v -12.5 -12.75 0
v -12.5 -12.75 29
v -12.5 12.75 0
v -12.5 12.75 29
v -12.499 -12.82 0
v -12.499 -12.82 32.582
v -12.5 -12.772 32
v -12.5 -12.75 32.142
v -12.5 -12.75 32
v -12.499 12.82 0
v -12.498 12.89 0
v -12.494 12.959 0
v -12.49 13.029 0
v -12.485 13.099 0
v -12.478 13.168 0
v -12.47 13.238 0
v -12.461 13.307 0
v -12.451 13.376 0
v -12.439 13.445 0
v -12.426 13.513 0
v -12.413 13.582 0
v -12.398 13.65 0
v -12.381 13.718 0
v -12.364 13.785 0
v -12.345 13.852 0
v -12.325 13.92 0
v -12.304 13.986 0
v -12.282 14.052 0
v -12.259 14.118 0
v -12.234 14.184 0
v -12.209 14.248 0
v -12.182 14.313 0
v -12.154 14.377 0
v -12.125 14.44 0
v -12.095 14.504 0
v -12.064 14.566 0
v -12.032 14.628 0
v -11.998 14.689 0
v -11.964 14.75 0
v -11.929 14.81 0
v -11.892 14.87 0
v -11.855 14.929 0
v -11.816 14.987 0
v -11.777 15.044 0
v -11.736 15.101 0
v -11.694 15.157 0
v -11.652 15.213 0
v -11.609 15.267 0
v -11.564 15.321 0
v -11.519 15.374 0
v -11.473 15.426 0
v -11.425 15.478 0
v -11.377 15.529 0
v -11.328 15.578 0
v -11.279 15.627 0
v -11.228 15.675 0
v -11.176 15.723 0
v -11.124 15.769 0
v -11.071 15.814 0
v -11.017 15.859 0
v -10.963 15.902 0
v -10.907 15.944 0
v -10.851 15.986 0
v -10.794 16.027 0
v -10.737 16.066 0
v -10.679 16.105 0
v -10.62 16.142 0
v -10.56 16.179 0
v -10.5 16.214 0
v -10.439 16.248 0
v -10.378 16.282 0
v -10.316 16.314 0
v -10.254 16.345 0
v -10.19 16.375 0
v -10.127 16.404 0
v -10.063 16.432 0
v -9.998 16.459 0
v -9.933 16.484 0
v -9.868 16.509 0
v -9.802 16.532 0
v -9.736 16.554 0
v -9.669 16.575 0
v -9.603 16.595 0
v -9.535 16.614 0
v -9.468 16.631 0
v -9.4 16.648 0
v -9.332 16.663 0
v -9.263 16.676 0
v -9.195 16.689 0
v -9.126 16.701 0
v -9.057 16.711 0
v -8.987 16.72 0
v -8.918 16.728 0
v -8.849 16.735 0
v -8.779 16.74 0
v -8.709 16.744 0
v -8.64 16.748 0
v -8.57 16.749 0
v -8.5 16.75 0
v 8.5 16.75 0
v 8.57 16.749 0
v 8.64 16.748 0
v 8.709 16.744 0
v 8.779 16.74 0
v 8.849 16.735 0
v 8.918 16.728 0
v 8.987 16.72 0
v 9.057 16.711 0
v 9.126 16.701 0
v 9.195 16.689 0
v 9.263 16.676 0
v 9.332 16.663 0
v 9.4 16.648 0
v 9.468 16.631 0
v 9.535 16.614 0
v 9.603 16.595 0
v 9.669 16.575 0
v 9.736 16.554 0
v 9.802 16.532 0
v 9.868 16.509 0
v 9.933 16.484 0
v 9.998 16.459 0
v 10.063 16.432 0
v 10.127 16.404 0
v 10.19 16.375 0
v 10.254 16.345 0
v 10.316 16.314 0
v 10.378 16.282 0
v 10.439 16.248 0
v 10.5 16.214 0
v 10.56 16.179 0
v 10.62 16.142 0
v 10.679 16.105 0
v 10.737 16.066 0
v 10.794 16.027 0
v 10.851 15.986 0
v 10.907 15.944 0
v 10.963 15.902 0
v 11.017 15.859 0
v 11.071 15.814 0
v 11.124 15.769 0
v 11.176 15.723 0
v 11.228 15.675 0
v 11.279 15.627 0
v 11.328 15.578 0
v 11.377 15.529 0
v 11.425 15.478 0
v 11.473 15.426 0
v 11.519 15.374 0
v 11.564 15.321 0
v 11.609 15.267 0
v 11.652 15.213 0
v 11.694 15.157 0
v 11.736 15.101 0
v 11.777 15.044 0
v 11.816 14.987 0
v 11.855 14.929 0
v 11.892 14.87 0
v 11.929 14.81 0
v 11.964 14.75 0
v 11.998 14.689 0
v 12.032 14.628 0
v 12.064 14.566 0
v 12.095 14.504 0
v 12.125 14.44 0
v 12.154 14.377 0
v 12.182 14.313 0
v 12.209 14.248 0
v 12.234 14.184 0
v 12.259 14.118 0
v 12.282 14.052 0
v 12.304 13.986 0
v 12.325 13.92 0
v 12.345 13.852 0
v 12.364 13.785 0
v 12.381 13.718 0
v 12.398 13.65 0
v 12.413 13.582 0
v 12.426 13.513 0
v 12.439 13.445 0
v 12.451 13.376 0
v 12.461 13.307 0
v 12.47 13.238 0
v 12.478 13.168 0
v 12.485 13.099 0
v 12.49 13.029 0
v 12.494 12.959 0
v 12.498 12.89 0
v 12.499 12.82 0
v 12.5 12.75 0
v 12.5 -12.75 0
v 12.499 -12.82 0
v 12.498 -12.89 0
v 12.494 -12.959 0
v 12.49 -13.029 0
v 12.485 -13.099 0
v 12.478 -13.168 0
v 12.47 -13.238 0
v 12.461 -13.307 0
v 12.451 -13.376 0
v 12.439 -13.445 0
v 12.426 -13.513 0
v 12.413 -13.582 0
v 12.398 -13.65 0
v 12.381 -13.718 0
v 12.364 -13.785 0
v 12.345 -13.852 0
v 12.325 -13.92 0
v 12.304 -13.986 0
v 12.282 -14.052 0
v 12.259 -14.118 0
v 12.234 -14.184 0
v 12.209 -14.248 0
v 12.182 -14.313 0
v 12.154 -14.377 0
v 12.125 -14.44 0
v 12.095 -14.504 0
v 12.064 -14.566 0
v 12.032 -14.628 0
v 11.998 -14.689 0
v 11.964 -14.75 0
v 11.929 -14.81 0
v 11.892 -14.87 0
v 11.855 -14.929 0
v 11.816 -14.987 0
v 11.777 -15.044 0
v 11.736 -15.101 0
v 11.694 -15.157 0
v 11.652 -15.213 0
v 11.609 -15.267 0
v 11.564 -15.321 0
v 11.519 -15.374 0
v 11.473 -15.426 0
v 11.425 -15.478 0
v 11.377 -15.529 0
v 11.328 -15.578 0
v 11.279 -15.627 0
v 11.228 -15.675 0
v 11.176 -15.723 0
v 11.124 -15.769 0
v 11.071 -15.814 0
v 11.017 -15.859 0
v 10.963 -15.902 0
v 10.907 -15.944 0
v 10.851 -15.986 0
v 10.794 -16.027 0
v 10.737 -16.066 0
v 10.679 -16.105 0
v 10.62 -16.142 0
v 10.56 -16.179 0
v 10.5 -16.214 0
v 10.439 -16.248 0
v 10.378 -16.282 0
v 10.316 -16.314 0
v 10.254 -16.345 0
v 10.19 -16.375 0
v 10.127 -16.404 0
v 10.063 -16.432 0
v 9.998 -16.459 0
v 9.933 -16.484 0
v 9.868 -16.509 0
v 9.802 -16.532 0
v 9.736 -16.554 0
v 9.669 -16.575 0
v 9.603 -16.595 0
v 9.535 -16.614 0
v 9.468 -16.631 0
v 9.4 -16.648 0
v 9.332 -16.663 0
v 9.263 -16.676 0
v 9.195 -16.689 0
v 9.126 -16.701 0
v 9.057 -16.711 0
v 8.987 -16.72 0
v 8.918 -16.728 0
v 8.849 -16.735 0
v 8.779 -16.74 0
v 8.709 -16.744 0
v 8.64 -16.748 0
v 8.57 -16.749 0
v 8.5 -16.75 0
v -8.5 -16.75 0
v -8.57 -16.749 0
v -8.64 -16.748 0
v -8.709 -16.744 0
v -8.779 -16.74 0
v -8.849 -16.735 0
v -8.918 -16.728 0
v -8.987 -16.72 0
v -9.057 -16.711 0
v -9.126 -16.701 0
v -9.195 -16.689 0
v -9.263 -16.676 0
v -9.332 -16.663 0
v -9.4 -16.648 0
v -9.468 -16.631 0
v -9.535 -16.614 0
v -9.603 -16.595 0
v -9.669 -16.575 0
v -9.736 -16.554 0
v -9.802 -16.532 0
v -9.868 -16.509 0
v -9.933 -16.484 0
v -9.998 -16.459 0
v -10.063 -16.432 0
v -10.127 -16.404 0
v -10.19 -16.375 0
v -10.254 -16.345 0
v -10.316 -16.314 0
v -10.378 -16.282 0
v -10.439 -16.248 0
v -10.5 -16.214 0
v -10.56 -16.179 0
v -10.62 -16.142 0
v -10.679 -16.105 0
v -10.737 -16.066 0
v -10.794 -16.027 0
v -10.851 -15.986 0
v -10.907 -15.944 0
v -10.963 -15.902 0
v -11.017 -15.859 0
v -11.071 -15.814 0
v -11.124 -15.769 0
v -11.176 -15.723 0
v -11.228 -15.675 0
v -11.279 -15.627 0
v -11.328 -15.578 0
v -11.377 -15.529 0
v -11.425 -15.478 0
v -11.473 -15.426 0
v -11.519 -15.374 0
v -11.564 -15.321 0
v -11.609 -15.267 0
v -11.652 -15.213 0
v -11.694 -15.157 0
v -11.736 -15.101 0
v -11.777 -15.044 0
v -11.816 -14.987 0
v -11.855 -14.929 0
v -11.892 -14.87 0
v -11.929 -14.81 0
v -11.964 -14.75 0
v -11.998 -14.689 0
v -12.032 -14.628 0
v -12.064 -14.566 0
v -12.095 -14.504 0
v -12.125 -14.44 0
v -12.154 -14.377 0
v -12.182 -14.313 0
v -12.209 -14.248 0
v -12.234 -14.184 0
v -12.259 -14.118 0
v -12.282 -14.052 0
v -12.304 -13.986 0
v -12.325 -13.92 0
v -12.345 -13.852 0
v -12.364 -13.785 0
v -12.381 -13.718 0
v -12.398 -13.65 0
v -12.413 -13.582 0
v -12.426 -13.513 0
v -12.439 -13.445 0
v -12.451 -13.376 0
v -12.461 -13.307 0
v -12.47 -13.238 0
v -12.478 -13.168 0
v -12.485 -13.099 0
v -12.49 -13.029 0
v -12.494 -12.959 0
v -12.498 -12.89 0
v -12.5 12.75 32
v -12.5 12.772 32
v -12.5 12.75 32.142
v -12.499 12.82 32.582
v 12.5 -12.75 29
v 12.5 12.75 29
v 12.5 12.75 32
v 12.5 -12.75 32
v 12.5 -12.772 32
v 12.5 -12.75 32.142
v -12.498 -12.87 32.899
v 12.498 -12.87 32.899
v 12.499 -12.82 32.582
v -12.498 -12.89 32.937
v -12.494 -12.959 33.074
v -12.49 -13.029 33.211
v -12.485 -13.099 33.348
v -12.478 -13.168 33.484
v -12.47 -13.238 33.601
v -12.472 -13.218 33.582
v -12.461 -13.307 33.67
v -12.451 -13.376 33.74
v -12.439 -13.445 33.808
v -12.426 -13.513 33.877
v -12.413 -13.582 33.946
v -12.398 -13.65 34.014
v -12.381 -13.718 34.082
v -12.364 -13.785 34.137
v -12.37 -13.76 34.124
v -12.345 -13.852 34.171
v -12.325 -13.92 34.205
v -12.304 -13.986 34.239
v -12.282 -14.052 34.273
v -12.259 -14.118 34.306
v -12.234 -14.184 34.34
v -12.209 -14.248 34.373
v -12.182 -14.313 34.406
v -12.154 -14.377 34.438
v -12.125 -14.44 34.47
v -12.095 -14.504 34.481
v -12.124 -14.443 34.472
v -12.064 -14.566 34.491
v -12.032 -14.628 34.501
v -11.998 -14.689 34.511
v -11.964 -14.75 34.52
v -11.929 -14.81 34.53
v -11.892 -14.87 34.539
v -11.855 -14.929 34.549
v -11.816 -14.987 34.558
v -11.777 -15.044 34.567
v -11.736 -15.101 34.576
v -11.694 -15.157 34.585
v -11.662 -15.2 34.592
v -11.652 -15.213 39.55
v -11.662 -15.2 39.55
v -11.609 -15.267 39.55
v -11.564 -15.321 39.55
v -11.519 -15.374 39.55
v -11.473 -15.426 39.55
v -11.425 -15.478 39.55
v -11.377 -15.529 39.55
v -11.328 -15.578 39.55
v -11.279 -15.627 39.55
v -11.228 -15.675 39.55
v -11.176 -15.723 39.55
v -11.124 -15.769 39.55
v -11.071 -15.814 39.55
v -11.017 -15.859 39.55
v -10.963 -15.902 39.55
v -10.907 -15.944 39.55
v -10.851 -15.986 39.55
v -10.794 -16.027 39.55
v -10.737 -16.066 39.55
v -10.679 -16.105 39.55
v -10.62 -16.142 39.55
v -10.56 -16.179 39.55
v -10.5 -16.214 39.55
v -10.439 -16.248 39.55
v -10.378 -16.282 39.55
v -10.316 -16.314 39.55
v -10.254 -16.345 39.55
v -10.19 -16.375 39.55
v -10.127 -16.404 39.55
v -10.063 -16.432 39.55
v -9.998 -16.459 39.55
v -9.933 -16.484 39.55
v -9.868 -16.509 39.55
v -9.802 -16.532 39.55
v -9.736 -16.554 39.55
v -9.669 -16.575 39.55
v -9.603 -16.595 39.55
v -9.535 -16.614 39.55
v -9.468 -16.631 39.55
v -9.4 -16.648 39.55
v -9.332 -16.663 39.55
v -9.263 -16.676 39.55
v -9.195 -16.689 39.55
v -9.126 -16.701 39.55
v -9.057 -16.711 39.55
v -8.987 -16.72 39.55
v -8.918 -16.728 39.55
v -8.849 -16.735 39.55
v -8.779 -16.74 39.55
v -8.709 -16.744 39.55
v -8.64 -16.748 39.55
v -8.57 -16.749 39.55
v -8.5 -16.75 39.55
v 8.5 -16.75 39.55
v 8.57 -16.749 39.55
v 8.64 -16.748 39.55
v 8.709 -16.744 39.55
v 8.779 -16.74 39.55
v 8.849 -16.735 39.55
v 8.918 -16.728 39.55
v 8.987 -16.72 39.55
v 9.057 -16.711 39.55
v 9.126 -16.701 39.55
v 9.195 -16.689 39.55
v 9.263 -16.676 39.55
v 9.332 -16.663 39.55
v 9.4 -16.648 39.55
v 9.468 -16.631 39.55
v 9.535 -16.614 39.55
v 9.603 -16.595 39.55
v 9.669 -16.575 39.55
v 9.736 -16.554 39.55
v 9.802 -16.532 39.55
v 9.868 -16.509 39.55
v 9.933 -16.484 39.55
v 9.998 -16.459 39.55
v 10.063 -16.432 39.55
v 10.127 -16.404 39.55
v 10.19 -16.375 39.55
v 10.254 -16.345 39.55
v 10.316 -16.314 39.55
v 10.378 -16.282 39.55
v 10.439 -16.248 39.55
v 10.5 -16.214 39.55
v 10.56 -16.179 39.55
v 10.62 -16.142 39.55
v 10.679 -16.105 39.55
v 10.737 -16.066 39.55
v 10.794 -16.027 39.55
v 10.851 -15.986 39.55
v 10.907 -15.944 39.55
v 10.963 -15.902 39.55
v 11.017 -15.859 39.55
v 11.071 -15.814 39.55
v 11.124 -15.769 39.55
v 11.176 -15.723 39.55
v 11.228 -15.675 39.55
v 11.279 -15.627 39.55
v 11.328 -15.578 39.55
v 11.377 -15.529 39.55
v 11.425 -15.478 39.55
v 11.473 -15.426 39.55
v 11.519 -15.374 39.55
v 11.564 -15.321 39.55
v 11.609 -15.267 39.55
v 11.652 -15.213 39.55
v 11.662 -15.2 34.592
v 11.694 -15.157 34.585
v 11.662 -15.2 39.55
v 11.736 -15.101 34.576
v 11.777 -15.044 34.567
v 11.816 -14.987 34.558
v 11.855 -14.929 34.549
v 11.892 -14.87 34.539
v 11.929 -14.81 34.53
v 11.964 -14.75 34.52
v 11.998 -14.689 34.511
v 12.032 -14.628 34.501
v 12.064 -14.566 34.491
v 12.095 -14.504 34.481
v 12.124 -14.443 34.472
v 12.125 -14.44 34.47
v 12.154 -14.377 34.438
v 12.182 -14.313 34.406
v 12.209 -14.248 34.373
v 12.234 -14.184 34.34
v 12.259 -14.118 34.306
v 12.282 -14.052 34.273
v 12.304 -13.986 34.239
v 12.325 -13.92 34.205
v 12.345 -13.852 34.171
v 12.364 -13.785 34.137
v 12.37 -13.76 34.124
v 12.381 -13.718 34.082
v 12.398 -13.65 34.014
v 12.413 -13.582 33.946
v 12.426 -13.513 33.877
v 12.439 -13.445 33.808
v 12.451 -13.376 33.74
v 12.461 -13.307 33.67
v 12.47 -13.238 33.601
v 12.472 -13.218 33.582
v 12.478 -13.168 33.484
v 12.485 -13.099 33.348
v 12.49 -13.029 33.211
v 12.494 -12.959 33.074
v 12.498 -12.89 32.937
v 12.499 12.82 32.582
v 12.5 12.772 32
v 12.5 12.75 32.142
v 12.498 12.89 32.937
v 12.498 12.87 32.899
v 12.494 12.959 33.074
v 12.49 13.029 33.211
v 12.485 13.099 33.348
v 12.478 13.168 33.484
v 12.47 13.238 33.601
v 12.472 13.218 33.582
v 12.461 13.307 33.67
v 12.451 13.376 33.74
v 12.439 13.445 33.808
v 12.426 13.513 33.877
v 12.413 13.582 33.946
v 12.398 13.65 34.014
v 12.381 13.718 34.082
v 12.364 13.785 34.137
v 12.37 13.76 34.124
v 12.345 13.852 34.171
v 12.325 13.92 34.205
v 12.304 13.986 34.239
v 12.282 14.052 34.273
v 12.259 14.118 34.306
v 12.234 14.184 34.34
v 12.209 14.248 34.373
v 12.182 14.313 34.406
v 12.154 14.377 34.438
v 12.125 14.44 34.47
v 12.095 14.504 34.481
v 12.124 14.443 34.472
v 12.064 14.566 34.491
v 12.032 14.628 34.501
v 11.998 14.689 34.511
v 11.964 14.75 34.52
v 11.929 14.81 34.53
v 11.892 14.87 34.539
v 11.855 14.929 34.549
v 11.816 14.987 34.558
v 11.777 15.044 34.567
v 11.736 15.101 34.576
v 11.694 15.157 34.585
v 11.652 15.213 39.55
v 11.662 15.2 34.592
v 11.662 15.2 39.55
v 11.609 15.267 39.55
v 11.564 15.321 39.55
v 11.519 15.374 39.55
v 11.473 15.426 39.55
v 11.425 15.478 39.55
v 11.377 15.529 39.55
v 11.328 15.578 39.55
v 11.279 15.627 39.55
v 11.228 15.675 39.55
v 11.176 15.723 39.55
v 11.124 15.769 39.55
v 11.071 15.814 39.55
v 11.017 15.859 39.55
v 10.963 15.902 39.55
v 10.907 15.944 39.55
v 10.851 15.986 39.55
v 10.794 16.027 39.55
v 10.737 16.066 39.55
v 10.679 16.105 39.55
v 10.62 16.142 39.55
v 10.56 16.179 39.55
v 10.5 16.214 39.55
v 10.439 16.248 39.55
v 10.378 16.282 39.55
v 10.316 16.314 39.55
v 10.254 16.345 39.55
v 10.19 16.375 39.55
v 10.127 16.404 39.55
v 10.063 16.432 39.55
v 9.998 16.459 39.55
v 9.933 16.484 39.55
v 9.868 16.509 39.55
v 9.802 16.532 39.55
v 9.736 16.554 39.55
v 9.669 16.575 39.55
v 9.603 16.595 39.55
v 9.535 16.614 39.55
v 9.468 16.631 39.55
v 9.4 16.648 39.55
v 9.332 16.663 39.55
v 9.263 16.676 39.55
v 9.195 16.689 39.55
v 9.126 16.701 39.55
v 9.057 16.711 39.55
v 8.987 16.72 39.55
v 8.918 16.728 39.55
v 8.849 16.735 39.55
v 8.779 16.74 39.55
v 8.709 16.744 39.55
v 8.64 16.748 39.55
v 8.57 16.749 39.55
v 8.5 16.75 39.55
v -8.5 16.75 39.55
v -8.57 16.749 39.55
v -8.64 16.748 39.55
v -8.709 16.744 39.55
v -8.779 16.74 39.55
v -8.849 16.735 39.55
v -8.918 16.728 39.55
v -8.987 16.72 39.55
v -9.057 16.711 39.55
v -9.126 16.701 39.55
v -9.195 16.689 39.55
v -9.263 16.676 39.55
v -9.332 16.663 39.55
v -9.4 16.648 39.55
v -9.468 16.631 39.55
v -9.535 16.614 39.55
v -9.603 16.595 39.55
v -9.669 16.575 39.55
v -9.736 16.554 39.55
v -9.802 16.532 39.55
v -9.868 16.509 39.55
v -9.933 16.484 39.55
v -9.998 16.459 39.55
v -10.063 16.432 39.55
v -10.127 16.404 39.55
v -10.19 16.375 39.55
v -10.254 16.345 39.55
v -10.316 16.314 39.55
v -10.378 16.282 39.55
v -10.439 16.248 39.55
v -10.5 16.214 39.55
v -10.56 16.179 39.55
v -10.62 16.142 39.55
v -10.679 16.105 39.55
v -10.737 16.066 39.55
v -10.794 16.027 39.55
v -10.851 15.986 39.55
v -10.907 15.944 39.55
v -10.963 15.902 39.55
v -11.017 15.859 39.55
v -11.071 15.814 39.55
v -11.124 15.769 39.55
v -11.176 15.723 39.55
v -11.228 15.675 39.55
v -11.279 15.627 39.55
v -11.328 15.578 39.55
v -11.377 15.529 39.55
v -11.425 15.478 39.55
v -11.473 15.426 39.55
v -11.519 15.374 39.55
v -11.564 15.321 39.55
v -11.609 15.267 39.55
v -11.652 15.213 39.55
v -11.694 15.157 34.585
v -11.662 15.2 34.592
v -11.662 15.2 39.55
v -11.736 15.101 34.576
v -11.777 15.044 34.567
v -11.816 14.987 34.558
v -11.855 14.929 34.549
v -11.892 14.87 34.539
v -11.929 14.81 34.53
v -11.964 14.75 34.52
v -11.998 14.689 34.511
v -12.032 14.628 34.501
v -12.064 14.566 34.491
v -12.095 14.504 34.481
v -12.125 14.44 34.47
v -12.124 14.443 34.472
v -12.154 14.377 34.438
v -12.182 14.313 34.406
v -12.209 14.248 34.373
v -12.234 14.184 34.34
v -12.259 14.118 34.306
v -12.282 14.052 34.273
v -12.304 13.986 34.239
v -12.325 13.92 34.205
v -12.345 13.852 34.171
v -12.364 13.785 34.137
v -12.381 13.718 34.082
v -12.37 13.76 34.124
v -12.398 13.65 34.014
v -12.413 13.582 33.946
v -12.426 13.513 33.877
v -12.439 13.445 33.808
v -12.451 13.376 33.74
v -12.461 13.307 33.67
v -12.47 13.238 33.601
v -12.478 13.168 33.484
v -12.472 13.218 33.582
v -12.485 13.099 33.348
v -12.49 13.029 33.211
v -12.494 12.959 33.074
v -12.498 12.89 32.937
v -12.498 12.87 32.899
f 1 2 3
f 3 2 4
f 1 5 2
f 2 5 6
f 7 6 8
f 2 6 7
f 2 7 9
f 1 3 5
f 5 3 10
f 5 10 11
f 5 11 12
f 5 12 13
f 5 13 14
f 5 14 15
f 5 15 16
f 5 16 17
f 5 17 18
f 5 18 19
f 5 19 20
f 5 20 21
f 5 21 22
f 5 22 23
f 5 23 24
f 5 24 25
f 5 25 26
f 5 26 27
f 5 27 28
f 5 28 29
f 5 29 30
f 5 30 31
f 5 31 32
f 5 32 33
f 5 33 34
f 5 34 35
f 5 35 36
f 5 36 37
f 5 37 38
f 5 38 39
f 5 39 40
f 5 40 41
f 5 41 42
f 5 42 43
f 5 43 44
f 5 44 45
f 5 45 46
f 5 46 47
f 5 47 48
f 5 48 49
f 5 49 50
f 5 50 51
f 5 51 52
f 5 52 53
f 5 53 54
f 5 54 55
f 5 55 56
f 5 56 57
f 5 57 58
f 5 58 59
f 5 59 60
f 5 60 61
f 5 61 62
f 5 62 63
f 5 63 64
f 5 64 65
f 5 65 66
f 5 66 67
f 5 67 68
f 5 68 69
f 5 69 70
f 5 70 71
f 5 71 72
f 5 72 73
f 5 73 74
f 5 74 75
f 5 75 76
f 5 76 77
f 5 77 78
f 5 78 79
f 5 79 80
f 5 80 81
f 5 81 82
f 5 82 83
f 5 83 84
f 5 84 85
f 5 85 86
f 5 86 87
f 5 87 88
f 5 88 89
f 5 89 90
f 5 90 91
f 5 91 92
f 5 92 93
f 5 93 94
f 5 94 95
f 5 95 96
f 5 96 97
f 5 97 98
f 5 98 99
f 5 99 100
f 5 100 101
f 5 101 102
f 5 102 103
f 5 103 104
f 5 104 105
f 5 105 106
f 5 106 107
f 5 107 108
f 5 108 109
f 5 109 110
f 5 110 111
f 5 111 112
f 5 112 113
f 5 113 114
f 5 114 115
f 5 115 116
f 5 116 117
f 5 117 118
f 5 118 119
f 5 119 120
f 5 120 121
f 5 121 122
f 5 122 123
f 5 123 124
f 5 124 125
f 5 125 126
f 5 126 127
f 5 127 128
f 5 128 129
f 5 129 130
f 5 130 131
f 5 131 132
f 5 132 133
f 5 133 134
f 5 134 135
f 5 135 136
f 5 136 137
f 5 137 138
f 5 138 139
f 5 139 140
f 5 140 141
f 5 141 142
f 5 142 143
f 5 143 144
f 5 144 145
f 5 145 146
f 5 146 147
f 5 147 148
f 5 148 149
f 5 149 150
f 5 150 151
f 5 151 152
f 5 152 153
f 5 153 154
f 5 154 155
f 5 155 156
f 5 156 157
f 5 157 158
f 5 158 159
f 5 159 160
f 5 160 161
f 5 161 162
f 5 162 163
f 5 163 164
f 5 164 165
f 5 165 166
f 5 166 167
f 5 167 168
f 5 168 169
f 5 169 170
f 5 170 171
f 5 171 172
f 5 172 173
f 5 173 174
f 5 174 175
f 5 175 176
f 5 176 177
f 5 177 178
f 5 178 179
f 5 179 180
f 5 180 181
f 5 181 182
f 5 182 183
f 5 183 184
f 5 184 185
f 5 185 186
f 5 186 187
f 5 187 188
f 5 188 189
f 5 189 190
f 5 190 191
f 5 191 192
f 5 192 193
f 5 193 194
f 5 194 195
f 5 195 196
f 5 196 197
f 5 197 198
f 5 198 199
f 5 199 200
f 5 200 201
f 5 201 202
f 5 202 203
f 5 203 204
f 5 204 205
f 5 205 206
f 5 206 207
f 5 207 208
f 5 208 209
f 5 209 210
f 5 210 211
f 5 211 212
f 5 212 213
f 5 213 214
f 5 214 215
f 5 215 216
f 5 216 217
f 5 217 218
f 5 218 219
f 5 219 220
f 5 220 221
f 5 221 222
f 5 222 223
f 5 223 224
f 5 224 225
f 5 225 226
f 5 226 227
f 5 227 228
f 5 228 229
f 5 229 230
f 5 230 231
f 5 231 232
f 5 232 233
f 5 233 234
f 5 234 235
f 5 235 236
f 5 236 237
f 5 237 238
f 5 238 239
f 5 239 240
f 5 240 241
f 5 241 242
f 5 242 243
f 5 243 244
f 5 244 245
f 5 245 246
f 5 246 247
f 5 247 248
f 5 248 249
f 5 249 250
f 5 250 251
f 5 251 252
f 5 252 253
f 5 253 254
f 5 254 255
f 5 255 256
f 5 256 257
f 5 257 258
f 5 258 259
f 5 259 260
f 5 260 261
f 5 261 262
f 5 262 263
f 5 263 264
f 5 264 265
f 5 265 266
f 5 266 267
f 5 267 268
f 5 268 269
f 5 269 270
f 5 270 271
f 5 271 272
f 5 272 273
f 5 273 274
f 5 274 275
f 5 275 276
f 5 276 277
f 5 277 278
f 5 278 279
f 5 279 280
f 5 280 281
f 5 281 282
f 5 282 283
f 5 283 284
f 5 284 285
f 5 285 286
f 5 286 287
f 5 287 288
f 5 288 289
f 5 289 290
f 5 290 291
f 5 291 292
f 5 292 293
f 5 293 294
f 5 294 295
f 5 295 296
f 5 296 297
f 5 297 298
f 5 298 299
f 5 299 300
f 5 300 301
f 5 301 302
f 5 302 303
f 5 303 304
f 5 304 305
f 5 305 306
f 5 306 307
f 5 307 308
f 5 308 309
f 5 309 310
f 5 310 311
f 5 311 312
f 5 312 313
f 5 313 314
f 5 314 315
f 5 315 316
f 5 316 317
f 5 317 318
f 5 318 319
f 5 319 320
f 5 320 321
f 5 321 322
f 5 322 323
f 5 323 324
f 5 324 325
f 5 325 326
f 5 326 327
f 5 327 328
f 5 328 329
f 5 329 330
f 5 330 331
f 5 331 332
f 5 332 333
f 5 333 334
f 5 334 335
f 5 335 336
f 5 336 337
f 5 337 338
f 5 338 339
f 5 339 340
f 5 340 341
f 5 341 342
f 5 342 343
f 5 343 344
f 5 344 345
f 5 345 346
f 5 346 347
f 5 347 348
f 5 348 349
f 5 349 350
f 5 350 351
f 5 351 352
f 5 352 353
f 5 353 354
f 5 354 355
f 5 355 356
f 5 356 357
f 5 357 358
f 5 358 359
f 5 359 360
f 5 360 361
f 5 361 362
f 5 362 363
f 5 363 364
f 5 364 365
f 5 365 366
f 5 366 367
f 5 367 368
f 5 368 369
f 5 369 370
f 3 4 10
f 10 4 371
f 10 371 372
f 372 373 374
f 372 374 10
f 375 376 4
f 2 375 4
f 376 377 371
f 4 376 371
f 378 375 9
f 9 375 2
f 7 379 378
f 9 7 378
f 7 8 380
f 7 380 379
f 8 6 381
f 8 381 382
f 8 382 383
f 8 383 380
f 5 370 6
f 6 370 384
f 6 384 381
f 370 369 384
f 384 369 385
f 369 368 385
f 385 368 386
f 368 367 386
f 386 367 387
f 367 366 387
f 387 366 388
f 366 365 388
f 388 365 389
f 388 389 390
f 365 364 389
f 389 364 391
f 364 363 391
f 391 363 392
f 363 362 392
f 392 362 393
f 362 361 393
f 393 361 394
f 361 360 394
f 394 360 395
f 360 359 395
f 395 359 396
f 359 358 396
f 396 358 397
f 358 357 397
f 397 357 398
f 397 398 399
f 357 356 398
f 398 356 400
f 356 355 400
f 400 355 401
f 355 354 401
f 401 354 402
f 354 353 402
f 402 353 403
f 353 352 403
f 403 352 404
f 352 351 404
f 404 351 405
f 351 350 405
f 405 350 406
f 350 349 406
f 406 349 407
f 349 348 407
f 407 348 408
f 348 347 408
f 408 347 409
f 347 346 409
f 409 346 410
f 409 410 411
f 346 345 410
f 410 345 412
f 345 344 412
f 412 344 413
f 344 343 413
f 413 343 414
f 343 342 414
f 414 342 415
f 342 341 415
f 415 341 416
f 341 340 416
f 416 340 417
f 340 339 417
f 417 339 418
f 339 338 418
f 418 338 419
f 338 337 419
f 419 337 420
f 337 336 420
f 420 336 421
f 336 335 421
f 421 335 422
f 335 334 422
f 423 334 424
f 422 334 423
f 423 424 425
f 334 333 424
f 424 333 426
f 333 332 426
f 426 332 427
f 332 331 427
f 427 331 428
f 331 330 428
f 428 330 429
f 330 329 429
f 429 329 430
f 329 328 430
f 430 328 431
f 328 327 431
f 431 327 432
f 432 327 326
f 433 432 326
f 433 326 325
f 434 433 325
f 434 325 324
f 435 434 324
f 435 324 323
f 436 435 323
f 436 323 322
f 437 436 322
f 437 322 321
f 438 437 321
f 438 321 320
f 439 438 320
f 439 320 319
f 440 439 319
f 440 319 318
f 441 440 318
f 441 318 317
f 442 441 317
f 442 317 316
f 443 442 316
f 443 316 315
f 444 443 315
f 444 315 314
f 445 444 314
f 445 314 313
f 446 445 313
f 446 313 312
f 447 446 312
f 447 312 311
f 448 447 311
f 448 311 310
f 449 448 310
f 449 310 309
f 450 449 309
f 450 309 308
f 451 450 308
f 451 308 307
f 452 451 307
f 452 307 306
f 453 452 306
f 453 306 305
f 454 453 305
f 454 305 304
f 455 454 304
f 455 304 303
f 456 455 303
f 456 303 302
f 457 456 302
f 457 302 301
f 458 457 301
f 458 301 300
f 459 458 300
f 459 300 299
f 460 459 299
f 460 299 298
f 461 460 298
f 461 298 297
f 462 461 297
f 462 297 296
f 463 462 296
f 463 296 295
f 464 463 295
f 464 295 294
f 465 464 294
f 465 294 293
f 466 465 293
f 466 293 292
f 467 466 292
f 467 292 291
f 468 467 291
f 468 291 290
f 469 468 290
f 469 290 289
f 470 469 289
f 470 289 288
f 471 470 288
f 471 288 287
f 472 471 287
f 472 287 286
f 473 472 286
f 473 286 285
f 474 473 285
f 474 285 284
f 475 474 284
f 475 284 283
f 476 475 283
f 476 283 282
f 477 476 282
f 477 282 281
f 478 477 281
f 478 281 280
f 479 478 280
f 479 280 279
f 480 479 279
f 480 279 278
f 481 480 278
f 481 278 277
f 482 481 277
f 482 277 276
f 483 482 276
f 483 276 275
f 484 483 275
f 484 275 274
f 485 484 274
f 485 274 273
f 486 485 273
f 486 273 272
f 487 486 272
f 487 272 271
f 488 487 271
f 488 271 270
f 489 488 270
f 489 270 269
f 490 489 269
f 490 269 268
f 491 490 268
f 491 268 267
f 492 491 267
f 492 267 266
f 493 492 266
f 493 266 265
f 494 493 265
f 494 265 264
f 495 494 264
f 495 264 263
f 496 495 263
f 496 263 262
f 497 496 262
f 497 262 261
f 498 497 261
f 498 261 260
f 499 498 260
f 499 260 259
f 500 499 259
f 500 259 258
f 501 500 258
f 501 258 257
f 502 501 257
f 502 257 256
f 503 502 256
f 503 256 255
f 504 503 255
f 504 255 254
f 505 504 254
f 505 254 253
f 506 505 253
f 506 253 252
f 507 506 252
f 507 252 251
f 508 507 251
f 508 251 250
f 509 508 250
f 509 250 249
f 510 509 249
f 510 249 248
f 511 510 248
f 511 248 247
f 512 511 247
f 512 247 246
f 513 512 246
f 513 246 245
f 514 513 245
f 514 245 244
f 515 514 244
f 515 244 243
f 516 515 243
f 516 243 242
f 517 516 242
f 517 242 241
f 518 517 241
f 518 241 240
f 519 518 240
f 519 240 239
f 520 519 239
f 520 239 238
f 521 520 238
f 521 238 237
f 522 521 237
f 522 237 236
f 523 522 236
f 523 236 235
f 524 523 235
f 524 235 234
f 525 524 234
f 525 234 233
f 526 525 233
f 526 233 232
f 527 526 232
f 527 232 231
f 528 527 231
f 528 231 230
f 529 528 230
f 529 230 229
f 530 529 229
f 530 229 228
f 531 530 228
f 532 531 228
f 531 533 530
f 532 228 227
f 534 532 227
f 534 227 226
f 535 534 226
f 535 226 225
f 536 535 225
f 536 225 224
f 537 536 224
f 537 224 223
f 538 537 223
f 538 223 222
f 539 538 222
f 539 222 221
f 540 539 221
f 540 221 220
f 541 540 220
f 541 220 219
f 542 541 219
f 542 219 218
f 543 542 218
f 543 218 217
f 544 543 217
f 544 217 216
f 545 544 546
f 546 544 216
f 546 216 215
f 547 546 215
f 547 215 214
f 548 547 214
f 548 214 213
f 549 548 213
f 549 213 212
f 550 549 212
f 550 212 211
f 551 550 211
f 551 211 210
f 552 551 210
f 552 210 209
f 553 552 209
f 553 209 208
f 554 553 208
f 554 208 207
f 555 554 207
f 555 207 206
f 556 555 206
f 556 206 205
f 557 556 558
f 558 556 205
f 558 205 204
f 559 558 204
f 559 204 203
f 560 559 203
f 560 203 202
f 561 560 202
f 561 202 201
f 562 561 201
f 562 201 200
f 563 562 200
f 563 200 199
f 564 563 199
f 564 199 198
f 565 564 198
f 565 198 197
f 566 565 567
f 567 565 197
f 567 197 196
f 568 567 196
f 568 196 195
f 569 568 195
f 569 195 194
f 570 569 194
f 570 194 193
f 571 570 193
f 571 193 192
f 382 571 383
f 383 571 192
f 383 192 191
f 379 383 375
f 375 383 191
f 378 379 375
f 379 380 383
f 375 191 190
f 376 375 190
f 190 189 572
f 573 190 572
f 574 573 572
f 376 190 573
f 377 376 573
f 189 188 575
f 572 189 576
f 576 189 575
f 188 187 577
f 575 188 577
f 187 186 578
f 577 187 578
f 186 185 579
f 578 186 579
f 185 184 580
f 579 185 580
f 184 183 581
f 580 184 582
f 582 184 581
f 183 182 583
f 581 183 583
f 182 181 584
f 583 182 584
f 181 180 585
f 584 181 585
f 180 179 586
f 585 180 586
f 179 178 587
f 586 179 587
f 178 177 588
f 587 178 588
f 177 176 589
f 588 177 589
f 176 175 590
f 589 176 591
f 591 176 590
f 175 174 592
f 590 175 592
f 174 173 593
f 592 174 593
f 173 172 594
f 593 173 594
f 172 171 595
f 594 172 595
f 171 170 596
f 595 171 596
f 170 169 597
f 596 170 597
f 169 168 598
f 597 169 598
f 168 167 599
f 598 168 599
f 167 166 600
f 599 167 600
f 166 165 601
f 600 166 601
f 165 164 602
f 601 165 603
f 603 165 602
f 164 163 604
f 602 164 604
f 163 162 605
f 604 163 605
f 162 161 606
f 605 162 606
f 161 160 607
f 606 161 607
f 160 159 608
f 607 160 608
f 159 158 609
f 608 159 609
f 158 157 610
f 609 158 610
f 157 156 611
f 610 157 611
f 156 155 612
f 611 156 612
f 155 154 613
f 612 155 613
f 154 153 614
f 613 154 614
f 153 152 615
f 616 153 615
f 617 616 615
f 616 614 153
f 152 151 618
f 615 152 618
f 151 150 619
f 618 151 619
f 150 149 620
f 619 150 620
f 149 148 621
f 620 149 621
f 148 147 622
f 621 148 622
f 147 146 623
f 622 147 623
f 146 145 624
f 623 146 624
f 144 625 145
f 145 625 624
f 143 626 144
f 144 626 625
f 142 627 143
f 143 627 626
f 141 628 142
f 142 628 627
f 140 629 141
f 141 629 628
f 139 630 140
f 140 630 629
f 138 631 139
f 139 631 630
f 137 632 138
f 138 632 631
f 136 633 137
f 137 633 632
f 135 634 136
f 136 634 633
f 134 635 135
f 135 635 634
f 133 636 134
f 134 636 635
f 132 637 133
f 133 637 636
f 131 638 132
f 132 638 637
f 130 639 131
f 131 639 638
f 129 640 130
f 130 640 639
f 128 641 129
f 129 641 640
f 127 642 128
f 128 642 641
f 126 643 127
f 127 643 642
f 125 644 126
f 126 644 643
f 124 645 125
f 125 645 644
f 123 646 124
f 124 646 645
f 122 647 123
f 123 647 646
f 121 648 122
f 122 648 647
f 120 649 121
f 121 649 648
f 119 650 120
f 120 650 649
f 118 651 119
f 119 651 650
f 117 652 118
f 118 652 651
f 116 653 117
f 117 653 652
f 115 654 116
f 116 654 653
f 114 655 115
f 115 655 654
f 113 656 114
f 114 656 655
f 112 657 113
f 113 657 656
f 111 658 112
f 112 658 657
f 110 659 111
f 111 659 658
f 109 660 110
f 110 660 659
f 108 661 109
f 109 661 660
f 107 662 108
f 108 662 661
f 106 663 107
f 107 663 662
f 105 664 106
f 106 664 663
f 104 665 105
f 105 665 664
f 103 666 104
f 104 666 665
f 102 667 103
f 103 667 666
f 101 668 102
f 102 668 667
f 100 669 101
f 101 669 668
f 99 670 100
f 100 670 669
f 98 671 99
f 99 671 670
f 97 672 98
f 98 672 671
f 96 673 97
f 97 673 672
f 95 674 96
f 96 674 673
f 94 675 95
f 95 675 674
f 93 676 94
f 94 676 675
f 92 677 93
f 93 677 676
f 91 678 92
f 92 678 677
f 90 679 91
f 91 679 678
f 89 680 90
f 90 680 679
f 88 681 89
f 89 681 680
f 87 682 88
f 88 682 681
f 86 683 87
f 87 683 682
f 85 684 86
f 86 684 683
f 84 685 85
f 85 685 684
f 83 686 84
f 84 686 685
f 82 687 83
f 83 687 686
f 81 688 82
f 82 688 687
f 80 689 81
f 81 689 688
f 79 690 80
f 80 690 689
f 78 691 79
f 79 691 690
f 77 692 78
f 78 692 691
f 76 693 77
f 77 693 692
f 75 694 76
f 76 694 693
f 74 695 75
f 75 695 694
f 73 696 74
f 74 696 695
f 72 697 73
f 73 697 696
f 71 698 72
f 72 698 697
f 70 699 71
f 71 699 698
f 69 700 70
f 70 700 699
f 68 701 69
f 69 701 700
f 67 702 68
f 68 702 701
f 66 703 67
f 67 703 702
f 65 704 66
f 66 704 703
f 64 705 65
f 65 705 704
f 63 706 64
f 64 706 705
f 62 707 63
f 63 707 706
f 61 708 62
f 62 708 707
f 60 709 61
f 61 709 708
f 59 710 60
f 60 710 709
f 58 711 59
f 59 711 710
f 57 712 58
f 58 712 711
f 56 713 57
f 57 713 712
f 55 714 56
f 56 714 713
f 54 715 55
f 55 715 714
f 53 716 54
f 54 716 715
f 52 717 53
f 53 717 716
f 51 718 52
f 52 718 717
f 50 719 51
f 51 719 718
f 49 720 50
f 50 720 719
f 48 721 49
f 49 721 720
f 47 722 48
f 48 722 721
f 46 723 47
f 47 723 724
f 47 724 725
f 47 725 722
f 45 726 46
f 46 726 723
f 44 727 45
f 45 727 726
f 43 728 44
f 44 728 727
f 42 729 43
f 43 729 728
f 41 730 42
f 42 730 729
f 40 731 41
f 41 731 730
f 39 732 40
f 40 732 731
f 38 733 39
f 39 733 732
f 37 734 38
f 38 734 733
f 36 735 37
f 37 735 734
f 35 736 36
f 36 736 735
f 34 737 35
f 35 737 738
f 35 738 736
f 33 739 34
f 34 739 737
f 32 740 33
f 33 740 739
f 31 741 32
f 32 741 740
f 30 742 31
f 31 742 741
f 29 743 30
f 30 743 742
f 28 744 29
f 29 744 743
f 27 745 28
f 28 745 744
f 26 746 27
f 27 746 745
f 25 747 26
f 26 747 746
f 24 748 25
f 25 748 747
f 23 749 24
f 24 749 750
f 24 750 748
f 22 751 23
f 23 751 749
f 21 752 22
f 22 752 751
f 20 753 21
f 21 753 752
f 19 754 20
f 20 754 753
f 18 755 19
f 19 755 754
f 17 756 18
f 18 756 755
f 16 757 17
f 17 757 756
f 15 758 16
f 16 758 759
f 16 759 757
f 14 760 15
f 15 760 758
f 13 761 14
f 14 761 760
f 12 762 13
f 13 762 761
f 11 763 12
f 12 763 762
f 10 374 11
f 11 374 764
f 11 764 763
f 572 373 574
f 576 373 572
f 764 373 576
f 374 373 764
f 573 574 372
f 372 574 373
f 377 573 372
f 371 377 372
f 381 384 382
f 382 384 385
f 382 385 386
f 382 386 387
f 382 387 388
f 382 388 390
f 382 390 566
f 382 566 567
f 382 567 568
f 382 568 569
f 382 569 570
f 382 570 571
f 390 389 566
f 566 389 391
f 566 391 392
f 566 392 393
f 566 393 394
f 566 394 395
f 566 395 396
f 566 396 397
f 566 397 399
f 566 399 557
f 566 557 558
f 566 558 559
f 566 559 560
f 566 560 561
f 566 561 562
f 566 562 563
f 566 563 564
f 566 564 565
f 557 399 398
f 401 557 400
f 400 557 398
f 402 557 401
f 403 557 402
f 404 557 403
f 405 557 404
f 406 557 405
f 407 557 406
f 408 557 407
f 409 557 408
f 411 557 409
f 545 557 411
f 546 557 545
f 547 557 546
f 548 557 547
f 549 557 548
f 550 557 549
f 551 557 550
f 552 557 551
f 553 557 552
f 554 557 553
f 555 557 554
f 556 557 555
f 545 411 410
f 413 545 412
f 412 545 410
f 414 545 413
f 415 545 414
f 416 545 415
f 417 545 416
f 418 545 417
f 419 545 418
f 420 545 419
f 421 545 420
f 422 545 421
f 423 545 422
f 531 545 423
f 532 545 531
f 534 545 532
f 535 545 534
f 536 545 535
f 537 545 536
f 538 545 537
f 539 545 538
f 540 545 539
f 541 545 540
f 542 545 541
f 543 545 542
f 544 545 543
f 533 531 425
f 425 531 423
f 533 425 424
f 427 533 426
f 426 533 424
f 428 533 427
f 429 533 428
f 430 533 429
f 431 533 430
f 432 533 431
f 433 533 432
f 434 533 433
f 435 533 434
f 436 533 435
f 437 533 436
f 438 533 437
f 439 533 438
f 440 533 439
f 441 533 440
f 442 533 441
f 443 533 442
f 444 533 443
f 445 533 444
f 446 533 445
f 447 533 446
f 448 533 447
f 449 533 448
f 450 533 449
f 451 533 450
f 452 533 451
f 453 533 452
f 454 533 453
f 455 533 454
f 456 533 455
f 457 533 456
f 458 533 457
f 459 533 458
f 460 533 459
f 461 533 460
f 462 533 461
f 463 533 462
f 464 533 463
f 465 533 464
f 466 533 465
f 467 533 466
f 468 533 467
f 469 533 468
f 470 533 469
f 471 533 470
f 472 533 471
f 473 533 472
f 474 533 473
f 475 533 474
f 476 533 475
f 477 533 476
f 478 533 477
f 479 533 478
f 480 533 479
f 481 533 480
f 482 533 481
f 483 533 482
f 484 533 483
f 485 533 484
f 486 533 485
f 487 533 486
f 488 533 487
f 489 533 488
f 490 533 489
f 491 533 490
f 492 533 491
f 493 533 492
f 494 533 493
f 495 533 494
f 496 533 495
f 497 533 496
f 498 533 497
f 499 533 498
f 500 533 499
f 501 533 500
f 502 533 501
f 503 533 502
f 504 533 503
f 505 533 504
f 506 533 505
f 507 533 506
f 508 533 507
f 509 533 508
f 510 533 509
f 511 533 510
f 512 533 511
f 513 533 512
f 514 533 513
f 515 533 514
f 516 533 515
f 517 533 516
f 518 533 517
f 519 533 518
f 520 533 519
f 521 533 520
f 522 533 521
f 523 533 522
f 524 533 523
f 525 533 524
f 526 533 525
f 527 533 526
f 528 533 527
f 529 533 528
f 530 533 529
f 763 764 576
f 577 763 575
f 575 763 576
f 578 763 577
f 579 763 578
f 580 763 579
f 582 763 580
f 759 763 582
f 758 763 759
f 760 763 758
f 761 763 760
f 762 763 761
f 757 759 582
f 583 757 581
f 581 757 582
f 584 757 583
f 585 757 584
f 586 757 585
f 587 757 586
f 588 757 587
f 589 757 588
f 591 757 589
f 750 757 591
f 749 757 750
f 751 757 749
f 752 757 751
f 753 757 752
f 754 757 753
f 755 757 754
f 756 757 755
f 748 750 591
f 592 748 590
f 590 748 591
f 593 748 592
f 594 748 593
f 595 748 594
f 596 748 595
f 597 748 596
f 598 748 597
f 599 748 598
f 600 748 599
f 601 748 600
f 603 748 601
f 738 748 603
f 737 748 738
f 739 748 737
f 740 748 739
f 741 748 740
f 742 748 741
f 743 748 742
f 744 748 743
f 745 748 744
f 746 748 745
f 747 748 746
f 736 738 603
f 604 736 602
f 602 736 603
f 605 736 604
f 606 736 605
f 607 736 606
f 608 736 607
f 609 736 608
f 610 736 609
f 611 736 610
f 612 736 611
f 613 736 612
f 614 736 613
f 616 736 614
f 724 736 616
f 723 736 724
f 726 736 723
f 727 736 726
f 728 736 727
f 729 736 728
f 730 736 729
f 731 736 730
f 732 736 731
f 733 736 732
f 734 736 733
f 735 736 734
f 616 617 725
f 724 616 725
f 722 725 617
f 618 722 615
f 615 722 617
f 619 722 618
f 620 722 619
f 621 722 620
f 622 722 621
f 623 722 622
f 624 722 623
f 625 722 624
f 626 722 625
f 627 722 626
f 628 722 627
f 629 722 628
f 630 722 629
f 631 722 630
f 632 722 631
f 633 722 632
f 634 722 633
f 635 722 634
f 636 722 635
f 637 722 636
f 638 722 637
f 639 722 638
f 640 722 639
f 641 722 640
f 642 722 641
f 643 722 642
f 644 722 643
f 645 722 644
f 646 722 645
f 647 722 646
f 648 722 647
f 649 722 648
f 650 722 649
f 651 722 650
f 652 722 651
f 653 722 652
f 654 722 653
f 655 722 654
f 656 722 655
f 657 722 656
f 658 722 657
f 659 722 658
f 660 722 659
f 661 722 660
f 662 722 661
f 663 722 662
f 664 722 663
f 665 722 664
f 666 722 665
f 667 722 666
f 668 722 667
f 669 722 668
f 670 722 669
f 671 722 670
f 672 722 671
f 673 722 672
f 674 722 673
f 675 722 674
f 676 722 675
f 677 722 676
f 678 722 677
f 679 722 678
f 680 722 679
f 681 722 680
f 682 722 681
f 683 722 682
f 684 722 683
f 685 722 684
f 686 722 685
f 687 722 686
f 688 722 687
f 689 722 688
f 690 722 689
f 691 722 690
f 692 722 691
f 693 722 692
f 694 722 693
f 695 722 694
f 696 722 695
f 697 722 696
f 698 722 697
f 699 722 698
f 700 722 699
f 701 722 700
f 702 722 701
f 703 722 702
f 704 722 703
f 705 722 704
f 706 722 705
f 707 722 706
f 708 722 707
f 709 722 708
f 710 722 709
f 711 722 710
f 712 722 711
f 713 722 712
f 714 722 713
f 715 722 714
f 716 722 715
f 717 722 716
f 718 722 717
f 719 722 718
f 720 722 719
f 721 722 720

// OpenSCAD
//
// a simple stand for a monster power outlets to go power strip to help it
// stand up when used with a 2-prong to 3-prong adapter
//
use <Libs.scad>;

padding = 0.05;

stand_h = 29;
// stand_h = 3;
// ear_h = 4.55;
ear_h = 10.55;
total_stand_h = ear_h + stand_h;
stand_int_w = 25.5;
// stand_w = stand_int_w + 4.9;
stand_w = stand_int_w + 8;
stand_l = 25;

module mo_pow_cutout() {
    translate( v = [0, 0, (ear_h - 1) / 2] ){
        difference() {
        union() {
            cube( size = [stand_l + 5, stand_int_w, ear_h - 1], center = true);
            translate( v = [0, 0, 3] ) {
                cube( size = [stand_l + 5, stand_int_w + 4.9, ear_h - 1], center = true);
            }
        }
        rotate([0, 90, 0]) {
            translate( v = [ (4.9/3),((stand_int_w/2) + (4.9/2)) , 0 ] ) {
                cylinder( h = stand_l + 5 + padding, r = (4.9/2), center = true, $fn = 20 );
            }
            translate( v = [ (4.9/3), -((stand_int_w/2) + (4.9/2)),0 ] ) {
                cylinder( h = stand_l + 5 + padding, r = (4.9/2), center = true, $fn = 20 );
            }
        }
    }
    }
}

module mo_pow_stand() {
    difference() {
        translate(v = [0, 0, total_stand_h / 2]) {
            roundRect(size = [stand_l, stand_w, total_stand_h], round = 4, center = true);
        }
        translate(v = [0, 0, stand_h]) {
            mo_pow_cutout();
        }
    }
}

mo_pow_stand();
// mo_pow_cutout();
